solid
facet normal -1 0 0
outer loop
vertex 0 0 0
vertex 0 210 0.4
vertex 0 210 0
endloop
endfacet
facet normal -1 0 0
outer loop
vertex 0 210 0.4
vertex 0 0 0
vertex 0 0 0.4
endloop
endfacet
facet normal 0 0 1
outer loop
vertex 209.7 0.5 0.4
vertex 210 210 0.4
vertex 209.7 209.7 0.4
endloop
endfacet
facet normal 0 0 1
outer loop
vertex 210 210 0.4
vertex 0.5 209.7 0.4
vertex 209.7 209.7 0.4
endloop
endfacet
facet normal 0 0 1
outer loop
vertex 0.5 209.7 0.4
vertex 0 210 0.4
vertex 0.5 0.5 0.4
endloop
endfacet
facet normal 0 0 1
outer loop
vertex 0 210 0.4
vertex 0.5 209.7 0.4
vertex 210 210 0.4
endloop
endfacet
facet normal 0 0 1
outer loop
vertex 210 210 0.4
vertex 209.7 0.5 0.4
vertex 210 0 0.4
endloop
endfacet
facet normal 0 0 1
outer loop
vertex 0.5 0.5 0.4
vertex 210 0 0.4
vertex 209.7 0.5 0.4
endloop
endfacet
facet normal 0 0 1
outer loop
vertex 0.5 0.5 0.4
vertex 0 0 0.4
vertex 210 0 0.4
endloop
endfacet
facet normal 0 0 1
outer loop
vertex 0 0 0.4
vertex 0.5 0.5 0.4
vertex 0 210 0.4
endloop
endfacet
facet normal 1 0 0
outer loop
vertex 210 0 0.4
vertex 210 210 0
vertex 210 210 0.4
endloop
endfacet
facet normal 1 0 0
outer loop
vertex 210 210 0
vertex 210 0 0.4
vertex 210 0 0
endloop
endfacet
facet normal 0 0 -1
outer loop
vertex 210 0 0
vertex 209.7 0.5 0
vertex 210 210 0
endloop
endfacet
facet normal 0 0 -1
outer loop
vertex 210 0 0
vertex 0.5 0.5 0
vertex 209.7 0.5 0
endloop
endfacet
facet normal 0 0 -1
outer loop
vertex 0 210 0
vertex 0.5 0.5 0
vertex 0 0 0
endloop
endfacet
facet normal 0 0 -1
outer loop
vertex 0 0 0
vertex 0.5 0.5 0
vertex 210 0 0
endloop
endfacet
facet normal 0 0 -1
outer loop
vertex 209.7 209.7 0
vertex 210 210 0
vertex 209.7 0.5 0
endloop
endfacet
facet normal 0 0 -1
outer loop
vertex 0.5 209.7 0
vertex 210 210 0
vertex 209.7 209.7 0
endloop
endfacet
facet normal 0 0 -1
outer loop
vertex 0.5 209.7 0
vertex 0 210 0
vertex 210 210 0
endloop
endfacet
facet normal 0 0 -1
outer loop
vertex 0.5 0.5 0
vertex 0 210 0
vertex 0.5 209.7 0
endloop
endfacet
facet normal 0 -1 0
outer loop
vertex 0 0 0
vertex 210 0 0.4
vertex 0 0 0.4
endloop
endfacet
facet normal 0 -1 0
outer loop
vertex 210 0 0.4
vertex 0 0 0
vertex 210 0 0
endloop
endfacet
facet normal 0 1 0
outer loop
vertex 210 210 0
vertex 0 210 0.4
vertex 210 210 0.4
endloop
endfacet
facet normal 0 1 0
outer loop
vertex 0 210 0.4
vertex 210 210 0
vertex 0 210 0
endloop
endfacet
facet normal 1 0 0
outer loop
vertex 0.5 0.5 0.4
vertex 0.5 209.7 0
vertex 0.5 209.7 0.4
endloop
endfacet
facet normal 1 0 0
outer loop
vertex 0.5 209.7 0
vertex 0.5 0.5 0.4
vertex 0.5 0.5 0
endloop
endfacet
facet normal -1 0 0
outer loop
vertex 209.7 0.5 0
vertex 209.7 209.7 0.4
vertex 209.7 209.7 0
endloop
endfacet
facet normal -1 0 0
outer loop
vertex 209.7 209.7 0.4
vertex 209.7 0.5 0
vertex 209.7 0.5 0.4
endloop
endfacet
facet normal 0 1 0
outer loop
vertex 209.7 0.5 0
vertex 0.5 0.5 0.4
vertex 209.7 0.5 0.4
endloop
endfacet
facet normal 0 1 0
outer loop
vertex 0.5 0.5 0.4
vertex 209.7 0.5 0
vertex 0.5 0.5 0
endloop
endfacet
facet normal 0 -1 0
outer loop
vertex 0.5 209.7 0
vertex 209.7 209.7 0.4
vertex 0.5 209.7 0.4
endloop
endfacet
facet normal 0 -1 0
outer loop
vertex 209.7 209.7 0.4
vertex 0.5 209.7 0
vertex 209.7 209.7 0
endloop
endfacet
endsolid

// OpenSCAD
difference(){
	cube([210, 210, 0.4]);
translate([0.5,0.5,-0.10])
	cube([209.2,209.2,1.0]);
}
